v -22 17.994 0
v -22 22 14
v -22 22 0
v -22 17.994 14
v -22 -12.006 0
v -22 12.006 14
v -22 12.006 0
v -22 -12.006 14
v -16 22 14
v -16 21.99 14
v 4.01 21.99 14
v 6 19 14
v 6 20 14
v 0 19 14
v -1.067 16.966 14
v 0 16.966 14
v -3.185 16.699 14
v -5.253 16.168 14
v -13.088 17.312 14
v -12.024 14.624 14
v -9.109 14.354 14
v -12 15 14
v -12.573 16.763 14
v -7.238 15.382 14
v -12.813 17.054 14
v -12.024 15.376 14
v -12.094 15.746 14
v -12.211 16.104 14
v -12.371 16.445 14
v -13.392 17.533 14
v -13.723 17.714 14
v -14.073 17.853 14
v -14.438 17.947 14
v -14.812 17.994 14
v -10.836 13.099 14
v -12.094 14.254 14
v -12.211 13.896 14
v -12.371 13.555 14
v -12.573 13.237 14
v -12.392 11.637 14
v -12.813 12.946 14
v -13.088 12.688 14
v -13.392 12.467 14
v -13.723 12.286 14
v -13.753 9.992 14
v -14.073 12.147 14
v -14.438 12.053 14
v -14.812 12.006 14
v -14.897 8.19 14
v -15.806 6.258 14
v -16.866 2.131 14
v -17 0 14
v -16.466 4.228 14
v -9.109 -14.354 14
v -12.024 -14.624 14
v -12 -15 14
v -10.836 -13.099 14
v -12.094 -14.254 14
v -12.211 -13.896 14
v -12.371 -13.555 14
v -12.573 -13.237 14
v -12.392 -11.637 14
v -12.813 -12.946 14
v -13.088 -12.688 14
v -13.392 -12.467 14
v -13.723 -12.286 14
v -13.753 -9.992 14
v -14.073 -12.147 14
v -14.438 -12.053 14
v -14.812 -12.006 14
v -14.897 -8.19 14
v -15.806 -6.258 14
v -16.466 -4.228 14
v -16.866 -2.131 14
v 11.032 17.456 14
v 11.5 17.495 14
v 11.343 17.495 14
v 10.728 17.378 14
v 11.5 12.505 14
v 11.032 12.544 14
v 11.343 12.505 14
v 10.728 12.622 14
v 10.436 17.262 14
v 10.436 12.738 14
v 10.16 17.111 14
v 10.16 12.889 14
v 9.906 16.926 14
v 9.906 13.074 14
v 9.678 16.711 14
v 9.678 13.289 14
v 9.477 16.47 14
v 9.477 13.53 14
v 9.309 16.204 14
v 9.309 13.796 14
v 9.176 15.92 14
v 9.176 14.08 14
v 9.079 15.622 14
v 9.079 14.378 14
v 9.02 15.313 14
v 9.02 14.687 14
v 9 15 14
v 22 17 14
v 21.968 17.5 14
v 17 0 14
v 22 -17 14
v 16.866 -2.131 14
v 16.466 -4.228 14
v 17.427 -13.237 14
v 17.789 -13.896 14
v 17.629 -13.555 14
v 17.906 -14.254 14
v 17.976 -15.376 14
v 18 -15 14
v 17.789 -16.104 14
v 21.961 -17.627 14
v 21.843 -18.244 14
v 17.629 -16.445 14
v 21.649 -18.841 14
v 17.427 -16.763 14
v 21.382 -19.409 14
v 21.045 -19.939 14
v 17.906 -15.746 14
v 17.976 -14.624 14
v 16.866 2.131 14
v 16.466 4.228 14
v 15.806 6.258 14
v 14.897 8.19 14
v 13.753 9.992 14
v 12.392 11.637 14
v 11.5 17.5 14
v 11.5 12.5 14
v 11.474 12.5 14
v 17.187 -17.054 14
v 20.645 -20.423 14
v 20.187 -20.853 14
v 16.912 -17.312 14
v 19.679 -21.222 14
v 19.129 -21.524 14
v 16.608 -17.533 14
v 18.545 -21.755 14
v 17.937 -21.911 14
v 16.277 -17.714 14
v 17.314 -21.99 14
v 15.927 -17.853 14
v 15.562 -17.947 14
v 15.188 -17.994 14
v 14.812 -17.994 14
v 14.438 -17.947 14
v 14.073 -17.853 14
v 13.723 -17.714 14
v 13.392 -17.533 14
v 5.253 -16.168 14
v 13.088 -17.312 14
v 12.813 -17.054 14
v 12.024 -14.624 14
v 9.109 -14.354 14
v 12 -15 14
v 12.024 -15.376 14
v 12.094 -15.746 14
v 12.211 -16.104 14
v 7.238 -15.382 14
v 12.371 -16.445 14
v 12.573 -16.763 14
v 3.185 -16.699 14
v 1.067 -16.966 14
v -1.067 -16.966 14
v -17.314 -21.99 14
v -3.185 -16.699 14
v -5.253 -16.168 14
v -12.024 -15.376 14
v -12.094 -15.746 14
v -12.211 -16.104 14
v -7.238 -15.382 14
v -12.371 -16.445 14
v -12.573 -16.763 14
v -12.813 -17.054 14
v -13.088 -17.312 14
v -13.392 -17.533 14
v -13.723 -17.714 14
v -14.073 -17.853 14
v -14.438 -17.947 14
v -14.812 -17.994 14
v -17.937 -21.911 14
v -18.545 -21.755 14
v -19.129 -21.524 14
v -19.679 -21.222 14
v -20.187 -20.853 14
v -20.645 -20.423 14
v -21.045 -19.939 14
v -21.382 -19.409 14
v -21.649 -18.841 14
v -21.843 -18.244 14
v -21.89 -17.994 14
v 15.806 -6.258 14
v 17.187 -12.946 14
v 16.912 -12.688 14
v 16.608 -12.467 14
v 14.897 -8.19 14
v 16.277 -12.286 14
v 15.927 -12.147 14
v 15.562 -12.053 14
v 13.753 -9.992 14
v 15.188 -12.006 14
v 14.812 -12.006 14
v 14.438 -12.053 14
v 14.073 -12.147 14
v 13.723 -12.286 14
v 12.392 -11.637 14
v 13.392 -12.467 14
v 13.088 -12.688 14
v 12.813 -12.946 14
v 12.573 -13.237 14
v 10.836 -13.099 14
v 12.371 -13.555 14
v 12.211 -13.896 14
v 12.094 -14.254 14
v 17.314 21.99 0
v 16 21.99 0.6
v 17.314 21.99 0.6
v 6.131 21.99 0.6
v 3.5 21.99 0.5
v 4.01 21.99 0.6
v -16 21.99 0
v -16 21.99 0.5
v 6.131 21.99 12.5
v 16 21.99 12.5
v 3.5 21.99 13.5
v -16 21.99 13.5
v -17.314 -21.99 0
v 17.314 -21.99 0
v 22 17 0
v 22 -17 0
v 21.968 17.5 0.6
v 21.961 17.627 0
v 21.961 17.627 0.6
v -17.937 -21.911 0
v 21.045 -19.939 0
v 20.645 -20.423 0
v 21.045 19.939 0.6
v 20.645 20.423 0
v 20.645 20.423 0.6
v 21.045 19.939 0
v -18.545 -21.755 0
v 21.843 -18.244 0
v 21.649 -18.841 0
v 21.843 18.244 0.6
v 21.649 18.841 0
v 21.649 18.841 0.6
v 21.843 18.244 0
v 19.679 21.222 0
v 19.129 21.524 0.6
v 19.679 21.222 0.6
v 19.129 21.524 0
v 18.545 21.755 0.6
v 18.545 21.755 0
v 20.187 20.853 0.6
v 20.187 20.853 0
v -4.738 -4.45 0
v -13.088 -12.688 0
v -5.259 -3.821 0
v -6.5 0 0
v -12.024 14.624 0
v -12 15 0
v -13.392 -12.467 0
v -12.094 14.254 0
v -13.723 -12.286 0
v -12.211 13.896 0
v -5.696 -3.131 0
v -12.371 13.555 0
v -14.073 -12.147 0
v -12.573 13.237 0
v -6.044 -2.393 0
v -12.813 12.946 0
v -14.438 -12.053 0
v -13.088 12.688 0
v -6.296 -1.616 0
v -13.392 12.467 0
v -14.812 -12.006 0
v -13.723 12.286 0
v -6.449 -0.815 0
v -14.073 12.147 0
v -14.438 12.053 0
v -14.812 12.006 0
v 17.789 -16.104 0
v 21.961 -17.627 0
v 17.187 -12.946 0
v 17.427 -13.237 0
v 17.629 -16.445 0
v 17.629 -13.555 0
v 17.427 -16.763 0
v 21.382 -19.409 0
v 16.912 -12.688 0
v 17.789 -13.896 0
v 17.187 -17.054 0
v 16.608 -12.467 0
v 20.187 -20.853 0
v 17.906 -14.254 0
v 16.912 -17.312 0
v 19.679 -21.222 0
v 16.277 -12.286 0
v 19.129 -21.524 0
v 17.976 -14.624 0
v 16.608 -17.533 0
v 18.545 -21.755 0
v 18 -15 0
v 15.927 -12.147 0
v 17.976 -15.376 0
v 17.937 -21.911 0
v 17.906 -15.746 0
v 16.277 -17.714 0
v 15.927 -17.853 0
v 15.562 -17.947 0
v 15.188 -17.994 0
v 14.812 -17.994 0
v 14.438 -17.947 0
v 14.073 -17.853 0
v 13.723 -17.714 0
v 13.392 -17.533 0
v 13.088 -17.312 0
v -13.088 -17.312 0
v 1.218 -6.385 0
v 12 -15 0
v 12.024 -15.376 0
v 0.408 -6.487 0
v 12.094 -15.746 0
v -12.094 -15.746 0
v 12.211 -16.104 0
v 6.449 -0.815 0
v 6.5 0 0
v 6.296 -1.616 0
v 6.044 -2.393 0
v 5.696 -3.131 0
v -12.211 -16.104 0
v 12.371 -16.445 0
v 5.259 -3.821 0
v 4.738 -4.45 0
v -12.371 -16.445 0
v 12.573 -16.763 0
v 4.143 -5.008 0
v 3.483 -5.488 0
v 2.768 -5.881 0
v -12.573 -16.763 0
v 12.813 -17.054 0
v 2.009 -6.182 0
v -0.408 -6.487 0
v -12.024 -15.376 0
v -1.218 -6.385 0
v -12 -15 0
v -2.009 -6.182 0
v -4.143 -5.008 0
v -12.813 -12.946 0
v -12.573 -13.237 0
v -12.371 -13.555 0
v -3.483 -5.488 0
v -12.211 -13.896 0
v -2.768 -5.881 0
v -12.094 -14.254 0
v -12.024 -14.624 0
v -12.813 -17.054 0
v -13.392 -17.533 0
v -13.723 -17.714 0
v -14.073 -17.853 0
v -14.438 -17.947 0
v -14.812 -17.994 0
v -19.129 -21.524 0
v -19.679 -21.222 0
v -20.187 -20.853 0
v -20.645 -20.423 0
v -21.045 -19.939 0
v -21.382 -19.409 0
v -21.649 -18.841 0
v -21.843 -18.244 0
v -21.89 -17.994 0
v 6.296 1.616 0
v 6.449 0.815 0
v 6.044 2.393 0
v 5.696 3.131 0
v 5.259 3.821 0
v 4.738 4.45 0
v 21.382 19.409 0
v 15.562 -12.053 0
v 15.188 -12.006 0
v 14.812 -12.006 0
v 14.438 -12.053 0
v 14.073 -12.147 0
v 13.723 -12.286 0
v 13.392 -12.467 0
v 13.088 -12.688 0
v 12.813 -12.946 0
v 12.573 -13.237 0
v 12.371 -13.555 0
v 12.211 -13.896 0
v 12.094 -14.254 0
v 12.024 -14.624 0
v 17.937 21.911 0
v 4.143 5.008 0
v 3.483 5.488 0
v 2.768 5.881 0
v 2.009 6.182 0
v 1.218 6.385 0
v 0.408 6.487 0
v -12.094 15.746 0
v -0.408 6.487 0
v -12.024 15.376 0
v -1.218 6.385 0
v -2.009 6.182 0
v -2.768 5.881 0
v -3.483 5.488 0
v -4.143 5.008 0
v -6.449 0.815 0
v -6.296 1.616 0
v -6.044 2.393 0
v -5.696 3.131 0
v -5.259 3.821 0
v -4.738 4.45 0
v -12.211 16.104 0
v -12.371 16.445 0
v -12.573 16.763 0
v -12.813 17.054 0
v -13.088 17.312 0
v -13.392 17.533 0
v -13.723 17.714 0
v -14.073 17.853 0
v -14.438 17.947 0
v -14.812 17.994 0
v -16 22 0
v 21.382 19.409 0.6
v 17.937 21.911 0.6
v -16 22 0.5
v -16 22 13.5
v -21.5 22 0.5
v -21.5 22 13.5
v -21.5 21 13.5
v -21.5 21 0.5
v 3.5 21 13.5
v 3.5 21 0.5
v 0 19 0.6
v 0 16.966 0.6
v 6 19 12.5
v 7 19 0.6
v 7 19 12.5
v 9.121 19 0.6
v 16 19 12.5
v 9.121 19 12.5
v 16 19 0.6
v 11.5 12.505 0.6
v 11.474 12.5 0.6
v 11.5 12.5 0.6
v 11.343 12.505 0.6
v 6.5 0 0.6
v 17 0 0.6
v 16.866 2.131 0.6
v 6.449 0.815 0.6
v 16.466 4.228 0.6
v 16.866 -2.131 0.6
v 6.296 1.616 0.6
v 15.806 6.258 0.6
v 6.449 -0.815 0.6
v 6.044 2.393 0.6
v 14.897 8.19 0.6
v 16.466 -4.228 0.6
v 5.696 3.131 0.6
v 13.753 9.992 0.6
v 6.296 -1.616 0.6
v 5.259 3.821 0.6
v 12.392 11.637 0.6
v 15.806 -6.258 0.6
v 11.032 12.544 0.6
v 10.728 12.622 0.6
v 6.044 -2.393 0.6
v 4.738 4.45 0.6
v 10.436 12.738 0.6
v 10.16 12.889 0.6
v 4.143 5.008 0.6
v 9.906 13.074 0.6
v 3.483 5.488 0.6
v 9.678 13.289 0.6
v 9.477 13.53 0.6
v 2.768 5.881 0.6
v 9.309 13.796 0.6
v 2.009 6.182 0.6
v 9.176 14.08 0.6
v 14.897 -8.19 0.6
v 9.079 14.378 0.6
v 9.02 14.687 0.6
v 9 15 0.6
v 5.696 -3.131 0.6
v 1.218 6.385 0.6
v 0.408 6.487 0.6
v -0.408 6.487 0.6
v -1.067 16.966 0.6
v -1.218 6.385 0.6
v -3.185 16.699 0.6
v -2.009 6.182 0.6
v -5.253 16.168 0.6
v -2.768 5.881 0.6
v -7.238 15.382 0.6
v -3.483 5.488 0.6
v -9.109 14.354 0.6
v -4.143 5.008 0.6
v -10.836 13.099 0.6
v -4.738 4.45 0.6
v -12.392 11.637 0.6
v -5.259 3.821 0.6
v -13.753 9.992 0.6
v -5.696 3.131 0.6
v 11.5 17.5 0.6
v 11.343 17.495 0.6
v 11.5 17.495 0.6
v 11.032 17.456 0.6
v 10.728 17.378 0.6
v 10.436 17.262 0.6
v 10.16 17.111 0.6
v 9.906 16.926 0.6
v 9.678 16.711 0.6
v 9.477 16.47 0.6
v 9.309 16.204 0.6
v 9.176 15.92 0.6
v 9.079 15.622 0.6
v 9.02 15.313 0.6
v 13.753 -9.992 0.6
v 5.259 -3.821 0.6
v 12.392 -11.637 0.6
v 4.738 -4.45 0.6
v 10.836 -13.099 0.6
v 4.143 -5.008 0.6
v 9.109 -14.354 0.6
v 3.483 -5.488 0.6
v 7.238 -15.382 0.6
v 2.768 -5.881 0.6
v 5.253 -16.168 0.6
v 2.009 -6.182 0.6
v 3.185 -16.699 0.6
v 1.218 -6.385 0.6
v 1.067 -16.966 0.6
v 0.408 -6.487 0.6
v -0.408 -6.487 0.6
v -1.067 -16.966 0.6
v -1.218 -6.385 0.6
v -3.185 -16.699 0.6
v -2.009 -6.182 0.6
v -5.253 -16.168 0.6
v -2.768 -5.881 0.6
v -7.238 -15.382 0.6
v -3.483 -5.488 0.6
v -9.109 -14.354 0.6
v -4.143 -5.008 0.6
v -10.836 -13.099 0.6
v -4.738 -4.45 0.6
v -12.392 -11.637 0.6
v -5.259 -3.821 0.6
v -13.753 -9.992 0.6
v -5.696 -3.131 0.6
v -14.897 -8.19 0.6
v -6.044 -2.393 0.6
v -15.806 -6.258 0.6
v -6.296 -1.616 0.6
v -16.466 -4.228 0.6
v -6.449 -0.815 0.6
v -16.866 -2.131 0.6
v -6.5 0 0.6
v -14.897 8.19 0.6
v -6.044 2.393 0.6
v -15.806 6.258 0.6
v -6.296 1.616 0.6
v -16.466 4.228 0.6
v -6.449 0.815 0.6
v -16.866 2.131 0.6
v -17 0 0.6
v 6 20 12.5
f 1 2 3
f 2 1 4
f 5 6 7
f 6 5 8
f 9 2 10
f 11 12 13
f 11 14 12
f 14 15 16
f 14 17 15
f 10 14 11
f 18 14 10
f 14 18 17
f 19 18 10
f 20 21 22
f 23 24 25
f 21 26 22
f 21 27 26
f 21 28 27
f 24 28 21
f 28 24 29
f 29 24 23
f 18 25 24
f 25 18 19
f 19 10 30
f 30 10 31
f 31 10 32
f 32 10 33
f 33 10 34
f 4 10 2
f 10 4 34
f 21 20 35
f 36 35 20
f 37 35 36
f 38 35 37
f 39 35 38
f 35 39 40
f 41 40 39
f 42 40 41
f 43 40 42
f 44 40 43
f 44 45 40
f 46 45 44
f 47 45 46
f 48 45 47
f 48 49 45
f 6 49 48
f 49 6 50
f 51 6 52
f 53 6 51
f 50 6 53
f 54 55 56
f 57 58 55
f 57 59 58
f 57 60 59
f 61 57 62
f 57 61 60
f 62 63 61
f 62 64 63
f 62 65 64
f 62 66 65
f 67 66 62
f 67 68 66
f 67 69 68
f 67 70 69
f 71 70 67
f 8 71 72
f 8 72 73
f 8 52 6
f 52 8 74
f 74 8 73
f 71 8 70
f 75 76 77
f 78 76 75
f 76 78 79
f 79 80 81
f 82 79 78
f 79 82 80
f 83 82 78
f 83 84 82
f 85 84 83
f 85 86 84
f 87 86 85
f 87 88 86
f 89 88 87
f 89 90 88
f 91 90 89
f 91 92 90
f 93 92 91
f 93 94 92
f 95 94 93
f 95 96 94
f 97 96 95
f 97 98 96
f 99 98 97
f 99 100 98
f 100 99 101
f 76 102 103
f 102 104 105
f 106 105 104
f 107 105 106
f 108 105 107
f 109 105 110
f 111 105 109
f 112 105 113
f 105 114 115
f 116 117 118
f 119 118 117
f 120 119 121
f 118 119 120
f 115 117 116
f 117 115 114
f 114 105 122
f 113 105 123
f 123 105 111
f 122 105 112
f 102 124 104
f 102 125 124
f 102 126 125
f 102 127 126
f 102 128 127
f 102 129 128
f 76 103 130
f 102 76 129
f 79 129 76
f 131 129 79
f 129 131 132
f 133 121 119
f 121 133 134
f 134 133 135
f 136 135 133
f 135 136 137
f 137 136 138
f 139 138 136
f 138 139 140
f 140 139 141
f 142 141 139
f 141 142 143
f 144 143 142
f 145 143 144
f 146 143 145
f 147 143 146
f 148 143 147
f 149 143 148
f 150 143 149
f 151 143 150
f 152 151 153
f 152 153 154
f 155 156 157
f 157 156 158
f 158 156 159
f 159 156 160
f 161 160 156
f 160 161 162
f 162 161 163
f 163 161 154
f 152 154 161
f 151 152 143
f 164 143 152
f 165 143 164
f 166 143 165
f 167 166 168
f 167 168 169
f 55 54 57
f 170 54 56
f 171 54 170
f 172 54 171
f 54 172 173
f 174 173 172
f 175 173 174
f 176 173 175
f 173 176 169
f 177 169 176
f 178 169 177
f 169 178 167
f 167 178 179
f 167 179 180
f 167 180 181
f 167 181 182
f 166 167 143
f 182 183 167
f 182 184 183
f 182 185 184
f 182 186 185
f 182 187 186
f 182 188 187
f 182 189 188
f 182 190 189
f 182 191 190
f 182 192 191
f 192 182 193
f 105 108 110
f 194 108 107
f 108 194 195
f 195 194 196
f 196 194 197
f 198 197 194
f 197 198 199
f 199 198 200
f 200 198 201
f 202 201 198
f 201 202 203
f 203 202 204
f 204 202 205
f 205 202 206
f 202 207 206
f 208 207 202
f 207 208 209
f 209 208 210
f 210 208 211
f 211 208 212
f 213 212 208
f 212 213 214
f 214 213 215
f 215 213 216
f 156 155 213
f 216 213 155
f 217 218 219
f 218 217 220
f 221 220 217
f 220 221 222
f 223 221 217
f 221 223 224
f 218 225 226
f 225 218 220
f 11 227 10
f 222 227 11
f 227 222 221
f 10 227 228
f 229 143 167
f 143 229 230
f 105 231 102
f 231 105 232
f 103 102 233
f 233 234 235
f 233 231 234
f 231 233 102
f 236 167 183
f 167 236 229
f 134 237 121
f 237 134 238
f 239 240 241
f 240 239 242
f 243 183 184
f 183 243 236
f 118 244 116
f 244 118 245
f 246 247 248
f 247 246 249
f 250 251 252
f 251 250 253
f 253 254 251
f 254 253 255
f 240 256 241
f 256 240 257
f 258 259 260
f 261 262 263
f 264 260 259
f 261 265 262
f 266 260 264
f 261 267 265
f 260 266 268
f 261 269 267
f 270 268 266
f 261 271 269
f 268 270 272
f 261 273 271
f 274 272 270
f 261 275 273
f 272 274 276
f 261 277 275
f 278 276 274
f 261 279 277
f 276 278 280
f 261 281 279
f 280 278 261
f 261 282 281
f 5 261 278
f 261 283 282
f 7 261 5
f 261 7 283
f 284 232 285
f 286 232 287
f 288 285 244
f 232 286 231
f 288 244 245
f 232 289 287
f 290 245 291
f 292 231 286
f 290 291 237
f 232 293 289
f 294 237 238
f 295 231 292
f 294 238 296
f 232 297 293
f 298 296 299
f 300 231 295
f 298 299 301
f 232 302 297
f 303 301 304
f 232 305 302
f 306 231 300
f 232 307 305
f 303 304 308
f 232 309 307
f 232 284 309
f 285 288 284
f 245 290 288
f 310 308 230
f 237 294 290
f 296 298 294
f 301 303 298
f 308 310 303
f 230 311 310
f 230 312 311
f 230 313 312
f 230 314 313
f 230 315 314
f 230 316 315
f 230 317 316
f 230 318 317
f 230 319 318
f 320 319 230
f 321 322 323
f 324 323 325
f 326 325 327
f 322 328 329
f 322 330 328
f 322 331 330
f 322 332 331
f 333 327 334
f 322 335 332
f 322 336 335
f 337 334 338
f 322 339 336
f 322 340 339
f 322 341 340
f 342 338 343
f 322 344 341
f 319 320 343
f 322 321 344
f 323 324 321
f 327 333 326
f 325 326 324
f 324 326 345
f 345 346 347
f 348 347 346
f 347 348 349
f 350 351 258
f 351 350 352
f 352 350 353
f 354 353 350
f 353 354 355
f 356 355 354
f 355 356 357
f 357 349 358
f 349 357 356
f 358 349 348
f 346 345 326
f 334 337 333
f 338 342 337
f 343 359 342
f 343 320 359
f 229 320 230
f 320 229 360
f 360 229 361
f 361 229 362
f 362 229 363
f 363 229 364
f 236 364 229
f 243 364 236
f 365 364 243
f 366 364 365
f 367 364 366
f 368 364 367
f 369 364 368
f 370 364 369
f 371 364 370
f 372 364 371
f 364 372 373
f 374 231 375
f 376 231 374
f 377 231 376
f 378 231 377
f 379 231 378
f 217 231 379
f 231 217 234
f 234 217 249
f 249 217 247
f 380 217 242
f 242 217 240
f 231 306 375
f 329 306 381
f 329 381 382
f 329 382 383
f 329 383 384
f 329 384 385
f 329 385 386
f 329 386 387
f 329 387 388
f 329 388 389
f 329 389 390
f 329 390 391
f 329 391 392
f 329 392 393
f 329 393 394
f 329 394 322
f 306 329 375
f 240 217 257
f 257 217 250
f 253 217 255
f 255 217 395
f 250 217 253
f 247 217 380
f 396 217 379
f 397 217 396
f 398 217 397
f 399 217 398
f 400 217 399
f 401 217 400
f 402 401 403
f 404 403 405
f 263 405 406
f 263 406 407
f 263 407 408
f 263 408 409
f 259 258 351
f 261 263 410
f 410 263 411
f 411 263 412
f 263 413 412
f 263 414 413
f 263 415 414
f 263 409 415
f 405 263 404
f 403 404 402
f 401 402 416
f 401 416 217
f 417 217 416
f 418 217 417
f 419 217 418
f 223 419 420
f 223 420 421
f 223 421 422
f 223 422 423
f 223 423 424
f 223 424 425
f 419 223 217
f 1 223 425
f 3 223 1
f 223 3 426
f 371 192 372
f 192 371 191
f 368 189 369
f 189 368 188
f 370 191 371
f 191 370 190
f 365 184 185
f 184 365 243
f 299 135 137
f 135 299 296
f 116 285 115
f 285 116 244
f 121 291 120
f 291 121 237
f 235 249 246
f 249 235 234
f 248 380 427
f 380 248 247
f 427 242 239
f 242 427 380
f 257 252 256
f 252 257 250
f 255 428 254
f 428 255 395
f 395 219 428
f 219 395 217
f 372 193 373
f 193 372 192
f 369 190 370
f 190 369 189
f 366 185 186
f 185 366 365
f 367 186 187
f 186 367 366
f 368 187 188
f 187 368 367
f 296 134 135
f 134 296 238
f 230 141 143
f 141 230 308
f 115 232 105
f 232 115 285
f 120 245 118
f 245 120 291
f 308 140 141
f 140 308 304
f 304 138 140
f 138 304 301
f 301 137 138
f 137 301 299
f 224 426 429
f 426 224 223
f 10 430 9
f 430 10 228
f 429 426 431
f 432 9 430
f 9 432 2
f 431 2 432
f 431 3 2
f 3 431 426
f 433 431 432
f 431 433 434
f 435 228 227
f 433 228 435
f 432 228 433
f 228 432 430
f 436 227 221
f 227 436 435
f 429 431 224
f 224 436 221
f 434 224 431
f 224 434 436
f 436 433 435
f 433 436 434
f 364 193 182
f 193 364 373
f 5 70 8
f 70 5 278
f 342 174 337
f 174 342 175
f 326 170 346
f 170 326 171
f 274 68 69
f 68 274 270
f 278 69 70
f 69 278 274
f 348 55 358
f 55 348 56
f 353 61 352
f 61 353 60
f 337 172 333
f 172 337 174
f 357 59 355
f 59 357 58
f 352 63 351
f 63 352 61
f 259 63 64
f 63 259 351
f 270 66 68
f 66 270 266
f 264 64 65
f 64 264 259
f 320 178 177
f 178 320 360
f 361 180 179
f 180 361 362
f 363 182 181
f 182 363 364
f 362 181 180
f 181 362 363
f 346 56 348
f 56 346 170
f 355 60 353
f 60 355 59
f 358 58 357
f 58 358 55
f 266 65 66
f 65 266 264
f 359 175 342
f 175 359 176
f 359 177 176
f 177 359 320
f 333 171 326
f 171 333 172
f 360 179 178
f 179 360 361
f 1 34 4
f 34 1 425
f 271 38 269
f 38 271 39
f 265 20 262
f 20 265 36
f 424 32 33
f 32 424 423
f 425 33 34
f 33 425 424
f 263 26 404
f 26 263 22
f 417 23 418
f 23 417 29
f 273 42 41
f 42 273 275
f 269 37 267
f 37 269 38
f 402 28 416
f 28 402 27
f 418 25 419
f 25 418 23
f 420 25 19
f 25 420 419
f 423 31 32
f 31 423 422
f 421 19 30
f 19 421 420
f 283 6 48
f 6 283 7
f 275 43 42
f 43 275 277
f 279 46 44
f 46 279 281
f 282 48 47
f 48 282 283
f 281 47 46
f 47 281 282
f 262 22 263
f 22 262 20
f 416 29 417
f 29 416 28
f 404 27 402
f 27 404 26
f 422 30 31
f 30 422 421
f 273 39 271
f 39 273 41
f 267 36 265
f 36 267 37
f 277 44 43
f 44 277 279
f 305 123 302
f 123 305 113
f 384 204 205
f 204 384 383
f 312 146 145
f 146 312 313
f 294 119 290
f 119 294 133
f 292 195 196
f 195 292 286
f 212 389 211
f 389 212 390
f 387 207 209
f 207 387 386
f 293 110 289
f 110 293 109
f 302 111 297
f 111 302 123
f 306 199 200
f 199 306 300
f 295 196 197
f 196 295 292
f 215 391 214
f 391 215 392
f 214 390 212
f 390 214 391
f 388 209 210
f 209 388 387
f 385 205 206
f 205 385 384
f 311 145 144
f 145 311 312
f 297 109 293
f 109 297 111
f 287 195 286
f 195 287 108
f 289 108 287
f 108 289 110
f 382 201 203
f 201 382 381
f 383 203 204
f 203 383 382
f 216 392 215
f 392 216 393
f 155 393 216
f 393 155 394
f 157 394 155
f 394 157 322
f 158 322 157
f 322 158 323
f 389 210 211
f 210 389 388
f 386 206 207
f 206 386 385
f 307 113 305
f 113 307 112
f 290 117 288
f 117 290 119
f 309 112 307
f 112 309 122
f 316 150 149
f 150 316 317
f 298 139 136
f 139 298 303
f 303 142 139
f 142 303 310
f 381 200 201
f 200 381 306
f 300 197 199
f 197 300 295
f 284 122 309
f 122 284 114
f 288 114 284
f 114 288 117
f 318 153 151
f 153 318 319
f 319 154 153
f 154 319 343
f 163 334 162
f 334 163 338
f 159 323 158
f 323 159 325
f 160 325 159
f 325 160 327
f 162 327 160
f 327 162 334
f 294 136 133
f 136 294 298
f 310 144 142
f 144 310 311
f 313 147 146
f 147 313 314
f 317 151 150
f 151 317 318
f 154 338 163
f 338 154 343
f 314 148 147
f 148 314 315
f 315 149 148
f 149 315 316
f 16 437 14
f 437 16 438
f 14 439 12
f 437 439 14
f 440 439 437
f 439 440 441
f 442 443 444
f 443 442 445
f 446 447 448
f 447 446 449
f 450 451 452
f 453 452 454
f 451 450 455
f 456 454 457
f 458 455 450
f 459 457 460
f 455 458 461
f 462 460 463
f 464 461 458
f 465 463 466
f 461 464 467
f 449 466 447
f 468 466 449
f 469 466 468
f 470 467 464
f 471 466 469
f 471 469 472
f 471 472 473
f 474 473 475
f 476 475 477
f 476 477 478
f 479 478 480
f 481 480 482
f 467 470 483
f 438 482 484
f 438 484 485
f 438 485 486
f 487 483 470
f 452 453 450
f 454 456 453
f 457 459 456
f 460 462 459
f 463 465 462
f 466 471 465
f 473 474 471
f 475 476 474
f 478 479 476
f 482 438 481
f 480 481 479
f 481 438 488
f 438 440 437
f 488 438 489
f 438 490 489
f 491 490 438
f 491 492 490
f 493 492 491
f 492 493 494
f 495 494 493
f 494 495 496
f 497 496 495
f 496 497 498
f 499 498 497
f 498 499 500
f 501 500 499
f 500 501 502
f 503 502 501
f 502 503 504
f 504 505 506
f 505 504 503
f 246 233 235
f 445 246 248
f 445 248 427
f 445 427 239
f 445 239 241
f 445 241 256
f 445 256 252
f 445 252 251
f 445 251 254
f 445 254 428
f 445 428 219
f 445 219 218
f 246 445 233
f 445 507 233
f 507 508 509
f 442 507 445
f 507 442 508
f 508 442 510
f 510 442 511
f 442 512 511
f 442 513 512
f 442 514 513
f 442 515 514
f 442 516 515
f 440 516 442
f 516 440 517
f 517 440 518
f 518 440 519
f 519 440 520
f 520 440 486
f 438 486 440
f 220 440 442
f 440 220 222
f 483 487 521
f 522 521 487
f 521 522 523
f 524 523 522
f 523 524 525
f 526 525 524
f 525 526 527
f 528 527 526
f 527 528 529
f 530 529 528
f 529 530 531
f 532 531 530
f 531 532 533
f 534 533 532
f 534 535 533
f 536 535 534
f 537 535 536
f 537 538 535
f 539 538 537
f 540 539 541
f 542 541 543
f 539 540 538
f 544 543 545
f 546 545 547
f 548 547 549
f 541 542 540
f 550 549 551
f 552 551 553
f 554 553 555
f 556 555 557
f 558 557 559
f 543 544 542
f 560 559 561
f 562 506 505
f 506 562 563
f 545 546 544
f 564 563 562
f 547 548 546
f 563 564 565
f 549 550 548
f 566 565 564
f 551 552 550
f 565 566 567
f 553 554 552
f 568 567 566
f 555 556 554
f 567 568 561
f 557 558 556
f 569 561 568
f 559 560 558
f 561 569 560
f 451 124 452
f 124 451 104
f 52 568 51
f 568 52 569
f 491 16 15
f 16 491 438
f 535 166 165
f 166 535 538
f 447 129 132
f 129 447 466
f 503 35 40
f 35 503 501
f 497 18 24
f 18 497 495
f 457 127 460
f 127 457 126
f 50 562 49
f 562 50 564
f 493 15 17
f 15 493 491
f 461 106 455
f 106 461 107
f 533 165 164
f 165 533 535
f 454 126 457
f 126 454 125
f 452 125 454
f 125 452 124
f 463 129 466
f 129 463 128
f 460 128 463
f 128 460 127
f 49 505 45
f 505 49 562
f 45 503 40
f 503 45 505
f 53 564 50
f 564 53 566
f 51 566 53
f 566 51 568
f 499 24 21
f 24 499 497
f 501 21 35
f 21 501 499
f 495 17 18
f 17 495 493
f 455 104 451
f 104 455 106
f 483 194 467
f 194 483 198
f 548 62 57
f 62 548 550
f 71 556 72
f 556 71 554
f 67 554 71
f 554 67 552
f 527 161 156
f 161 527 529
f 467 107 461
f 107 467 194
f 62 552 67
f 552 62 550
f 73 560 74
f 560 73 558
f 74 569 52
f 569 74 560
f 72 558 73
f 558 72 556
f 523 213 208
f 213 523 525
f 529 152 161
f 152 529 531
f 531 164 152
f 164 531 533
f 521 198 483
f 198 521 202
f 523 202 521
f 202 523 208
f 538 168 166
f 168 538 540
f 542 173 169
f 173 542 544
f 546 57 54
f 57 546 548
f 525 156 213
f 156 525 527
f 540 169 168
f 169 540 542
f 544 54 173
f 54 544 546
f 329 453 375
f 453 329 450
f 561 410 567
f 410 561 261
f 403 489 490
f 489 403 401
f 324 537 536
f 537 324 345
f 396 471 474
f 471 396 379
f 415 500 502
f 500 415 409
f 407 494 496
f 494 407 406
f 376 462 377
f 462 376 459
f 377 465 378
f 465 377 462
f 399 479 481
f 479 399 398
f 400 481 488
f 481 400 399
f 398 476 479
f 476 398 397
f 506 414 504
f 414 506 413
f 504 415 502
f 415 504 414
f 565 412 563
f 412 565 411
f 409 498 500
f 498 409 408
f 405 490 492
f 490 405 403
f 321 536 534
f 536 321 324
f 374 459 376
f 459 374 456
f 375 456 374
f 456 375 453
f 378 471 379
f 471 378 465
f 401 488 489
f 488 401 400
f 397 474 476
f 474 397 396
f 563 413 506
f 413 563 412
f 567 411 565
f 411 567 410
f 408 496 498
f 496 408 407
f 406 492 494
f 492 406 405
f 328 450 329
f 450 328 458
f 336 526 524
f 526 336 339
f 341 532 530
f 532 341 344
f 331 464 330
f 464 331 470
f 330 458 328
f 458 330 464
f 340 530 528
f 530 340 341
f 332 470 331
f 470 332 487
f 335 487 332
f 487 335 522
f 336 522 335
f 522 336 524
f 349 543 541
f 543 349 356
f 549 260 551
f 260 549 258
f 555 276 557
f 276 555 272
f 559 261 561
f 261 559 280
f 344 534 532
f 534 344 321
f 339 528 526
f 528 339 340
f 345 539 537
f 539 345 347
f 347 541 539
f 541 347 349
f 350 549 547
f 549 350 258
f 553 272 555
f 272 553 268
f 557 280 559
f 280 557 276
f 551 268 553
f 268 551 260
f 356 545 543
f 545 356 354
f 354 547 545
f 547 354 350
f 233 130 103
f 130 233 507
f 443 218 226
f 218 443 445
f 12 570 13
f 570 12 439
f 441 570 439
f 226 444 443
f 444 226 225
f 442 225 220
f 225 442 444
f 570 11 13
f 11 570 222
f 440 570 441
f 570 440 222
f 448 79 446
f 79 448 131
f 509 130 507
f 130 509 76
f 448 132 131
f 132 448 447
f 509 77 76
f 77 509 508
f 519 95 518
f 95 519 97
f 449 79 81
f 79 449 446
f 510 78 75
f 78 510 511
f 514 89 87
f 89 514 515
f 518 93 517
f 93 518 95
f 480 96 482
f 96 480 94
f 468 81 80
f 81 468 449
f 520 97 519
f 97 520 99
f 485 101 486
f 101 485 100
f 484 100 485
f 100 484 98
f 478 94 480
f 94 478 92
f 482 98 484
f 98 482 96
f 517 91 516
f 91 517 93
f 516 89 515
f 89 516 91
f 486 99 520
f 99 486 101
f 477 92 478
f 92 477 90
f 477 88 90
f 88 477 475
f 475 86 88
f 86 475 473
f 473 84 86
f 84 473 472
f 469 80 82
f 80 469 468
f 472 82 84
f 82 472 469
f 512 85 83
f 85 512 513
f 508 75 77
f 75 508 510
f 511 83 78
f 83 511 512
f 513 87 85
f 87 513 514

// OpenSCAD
$fn = 50;


union() {
	difference() {
		union() {
			translate(v = [0, 0, 0]) {
				rotate(a = [0, 0, 0]) {
					hull() {
						translate(v = [-17.0000000000, 17.0000000000, 0]) {
							rotate(a = [0, 0, 0]) {
								translate(v = [0, 0, 0]) {
									rotate(a = [0, 0, 0]) {
										cylinder(h = 14, r = 5);
									}
								}
							}
						}
						translate(v = [17.0000000000, 17.0000000000, 0]) {
							rotate(a = [0, 0, 0]) {
								translate(v = [0, 0, 0]) {
									rotate(a = [0, 0, 0]) {
										cylinder(h = 14, r = 5);
									}
								}
							}
						}
						translate(v = [-17.0000000000, -17.0000000000, 0]) {
							rotate(a = [0, 0, 0]) {
								translate(v = [0, 0, 0]) {
									rotate(a = [0, 0, 0]) {
										cylinder(h = 14, r = 5);
									}
								}
							}
						}
						translate(v = [17.0000000000, -17.0000000000, 0]) {
							rotate(a = [0, 0, 0]) {
								translate(v = [0, 0, 0]) {
									rotate(a = [0, 0, 0]) {
										cylinder(h = 14, r = 5);
									}
								}
							}
						}
					}
				}
			}
			translate(v = [-22.0000000000, 16.0000000000, 0]) {
				rotate(a = [0, 0, 0]) {
					cube(size = [6, 6, 14]);
				}
			}
		}
		union() {
			#translate(v = [-21.5000000000, 21.0000000000, 0.5000000000]) {
				rotate(a = [0, 0, 0]) {
					cube(size = [25, 1, 13.0000000000]);
				}
			}
			translate(v = [-22.5000000000, -15.0000000000, -125]) {
				rotate(a = [0, 0, 0]) {
					hull() {
						translate(v = [7.5000000000, 0, 0]) {
							rotate(a = [0, 0, 0]) {
								translate(v = [0, 0, 0]) {
									rotate(a = [0, 0, 0]) {
										cylinder(h = 250, r = 3.0000000000);
									}
								}
							}
						}
						translate(v = [-7.5000000000, 0, 0]) {
							rotate(a = [0, 0, 0]) {
								translate(v = [0, 0, 0]) {
									rotate(a = [0, 0, 0]) {
										cylinder(h = 250, r = 3.0000000000);
									}
								}
							}
						}
					}
				}
			}
			translate(v = [-22.5000000000, 15.0000000000, -125]) {
				rotate(a = [0, 0, 0]) {
					hull() {
						translate(v = [7.5000000000, 0, 0]) {
							rotate(a = [0, 0, 0]) {
								translate(v = [0, 0, 0]) {
									rotate(a = [0, 0, 0]) {
										cylinder(h = 250, r = 3.0000000000);
									}
								}
							}
						}
						translate(v = [-7.5000000000, 0, 0]) {
							rotate(a = [0, 0, 0]) {
								translate(v = [0, 0, 0]) {
									rotate(a = [0, 0, 0]) {
										cylinder(h = 250, r = 3.0000000000);
									}
								}
							}
						}
					}
				}
			}
			translate(v = [15.0000000000, -15.0000000000, -125.0000000000]) {
				rotate(a = [0, 0, 0]) {
					cylinder(h = 250, r = 3.0000000000);
				}
			}
			translate(v = [0.0000000000, 11.0000000000, 0.6000000000]) {
				rotate(a = [0, 0, 0]) {
					cube(size = [11, 8, 16.4000000000]);
				}
			}
			translate(v = [0, 0, 0.6000000000]) {
				rotate(a = [0, 0, 0]) {
					cylinder(h = 16.4000000000, r = 17.0000000000);
				}
			}
			translate(v = [0, 0, -7.0000000000]) {
				rotate(a = [0, 0, 0]) {
					cylinder(h = 14, r = 6.5000000000);
				}
			}
			translate(v = [0.0000000000, 17.5000000000, 0.6000000000]) {
				rotate(a = [0, 0, 0]) {
					cube(size = [22.0000000000, 1.5000000000, 16.4000000000]);
				}
			}
			translate(v = [16.0000000000, 17.5000000000, 0.6000000000]) {
				rotate(a = [0, 0, 0]) {
					cube(size = [6, 4.5000000000, 16.4000000000]);
				}
			}
			translate(v = [6.0000000000, 17.5000000000, 12.5000000000]) {
				rotate(a = [0, 0, 0]) {
					cube(size = [16, 4.5000000000, 1.5000000000]);
				}
			}
			translate(v = [3.2500000000, 22.7500000000, 0.6000000000]) {
				rotate(a = [0, 0, -45]) {
					cube(size = [7.5000000000, 1.5000000000, 16.4000000000]);
				}
			}
			translate(v = [2.5000000000, 12.5000000000, 0.6000000000]) {
				rotate(a = [0, 0, 0]) {
					cube(size = [9.0000000000, 5, 13.4000000000]);
				}
			}
		}
	}
	union() {
		translate(v = [14, 15.0000000000, 0]) {
			rotate(a = [0, 0, 0]) {
				hull() {
					translate(v = [2.5000000000, 0, 0]) {
						rotate(a = [0, 0, 0]) {
							#translate(v = [0, 0, 0]) {
								rotate(a = [0, 0, 0]) {
									cylinder(h = 14, r = 2.5000000000);
								}
							}
						}
					}
					translate(v = [-2.5000000000, 0, 0]) {
						rotate(a = [0, 0, 0]) {
							#translate(v = [0, 0, 0]) {
								rotate(a = [0, 0, 0]) {
									cylinder(h = 14, r = 2.5000000000);
								}
							}
						}
					}
				}
			}
		}
	}
}
